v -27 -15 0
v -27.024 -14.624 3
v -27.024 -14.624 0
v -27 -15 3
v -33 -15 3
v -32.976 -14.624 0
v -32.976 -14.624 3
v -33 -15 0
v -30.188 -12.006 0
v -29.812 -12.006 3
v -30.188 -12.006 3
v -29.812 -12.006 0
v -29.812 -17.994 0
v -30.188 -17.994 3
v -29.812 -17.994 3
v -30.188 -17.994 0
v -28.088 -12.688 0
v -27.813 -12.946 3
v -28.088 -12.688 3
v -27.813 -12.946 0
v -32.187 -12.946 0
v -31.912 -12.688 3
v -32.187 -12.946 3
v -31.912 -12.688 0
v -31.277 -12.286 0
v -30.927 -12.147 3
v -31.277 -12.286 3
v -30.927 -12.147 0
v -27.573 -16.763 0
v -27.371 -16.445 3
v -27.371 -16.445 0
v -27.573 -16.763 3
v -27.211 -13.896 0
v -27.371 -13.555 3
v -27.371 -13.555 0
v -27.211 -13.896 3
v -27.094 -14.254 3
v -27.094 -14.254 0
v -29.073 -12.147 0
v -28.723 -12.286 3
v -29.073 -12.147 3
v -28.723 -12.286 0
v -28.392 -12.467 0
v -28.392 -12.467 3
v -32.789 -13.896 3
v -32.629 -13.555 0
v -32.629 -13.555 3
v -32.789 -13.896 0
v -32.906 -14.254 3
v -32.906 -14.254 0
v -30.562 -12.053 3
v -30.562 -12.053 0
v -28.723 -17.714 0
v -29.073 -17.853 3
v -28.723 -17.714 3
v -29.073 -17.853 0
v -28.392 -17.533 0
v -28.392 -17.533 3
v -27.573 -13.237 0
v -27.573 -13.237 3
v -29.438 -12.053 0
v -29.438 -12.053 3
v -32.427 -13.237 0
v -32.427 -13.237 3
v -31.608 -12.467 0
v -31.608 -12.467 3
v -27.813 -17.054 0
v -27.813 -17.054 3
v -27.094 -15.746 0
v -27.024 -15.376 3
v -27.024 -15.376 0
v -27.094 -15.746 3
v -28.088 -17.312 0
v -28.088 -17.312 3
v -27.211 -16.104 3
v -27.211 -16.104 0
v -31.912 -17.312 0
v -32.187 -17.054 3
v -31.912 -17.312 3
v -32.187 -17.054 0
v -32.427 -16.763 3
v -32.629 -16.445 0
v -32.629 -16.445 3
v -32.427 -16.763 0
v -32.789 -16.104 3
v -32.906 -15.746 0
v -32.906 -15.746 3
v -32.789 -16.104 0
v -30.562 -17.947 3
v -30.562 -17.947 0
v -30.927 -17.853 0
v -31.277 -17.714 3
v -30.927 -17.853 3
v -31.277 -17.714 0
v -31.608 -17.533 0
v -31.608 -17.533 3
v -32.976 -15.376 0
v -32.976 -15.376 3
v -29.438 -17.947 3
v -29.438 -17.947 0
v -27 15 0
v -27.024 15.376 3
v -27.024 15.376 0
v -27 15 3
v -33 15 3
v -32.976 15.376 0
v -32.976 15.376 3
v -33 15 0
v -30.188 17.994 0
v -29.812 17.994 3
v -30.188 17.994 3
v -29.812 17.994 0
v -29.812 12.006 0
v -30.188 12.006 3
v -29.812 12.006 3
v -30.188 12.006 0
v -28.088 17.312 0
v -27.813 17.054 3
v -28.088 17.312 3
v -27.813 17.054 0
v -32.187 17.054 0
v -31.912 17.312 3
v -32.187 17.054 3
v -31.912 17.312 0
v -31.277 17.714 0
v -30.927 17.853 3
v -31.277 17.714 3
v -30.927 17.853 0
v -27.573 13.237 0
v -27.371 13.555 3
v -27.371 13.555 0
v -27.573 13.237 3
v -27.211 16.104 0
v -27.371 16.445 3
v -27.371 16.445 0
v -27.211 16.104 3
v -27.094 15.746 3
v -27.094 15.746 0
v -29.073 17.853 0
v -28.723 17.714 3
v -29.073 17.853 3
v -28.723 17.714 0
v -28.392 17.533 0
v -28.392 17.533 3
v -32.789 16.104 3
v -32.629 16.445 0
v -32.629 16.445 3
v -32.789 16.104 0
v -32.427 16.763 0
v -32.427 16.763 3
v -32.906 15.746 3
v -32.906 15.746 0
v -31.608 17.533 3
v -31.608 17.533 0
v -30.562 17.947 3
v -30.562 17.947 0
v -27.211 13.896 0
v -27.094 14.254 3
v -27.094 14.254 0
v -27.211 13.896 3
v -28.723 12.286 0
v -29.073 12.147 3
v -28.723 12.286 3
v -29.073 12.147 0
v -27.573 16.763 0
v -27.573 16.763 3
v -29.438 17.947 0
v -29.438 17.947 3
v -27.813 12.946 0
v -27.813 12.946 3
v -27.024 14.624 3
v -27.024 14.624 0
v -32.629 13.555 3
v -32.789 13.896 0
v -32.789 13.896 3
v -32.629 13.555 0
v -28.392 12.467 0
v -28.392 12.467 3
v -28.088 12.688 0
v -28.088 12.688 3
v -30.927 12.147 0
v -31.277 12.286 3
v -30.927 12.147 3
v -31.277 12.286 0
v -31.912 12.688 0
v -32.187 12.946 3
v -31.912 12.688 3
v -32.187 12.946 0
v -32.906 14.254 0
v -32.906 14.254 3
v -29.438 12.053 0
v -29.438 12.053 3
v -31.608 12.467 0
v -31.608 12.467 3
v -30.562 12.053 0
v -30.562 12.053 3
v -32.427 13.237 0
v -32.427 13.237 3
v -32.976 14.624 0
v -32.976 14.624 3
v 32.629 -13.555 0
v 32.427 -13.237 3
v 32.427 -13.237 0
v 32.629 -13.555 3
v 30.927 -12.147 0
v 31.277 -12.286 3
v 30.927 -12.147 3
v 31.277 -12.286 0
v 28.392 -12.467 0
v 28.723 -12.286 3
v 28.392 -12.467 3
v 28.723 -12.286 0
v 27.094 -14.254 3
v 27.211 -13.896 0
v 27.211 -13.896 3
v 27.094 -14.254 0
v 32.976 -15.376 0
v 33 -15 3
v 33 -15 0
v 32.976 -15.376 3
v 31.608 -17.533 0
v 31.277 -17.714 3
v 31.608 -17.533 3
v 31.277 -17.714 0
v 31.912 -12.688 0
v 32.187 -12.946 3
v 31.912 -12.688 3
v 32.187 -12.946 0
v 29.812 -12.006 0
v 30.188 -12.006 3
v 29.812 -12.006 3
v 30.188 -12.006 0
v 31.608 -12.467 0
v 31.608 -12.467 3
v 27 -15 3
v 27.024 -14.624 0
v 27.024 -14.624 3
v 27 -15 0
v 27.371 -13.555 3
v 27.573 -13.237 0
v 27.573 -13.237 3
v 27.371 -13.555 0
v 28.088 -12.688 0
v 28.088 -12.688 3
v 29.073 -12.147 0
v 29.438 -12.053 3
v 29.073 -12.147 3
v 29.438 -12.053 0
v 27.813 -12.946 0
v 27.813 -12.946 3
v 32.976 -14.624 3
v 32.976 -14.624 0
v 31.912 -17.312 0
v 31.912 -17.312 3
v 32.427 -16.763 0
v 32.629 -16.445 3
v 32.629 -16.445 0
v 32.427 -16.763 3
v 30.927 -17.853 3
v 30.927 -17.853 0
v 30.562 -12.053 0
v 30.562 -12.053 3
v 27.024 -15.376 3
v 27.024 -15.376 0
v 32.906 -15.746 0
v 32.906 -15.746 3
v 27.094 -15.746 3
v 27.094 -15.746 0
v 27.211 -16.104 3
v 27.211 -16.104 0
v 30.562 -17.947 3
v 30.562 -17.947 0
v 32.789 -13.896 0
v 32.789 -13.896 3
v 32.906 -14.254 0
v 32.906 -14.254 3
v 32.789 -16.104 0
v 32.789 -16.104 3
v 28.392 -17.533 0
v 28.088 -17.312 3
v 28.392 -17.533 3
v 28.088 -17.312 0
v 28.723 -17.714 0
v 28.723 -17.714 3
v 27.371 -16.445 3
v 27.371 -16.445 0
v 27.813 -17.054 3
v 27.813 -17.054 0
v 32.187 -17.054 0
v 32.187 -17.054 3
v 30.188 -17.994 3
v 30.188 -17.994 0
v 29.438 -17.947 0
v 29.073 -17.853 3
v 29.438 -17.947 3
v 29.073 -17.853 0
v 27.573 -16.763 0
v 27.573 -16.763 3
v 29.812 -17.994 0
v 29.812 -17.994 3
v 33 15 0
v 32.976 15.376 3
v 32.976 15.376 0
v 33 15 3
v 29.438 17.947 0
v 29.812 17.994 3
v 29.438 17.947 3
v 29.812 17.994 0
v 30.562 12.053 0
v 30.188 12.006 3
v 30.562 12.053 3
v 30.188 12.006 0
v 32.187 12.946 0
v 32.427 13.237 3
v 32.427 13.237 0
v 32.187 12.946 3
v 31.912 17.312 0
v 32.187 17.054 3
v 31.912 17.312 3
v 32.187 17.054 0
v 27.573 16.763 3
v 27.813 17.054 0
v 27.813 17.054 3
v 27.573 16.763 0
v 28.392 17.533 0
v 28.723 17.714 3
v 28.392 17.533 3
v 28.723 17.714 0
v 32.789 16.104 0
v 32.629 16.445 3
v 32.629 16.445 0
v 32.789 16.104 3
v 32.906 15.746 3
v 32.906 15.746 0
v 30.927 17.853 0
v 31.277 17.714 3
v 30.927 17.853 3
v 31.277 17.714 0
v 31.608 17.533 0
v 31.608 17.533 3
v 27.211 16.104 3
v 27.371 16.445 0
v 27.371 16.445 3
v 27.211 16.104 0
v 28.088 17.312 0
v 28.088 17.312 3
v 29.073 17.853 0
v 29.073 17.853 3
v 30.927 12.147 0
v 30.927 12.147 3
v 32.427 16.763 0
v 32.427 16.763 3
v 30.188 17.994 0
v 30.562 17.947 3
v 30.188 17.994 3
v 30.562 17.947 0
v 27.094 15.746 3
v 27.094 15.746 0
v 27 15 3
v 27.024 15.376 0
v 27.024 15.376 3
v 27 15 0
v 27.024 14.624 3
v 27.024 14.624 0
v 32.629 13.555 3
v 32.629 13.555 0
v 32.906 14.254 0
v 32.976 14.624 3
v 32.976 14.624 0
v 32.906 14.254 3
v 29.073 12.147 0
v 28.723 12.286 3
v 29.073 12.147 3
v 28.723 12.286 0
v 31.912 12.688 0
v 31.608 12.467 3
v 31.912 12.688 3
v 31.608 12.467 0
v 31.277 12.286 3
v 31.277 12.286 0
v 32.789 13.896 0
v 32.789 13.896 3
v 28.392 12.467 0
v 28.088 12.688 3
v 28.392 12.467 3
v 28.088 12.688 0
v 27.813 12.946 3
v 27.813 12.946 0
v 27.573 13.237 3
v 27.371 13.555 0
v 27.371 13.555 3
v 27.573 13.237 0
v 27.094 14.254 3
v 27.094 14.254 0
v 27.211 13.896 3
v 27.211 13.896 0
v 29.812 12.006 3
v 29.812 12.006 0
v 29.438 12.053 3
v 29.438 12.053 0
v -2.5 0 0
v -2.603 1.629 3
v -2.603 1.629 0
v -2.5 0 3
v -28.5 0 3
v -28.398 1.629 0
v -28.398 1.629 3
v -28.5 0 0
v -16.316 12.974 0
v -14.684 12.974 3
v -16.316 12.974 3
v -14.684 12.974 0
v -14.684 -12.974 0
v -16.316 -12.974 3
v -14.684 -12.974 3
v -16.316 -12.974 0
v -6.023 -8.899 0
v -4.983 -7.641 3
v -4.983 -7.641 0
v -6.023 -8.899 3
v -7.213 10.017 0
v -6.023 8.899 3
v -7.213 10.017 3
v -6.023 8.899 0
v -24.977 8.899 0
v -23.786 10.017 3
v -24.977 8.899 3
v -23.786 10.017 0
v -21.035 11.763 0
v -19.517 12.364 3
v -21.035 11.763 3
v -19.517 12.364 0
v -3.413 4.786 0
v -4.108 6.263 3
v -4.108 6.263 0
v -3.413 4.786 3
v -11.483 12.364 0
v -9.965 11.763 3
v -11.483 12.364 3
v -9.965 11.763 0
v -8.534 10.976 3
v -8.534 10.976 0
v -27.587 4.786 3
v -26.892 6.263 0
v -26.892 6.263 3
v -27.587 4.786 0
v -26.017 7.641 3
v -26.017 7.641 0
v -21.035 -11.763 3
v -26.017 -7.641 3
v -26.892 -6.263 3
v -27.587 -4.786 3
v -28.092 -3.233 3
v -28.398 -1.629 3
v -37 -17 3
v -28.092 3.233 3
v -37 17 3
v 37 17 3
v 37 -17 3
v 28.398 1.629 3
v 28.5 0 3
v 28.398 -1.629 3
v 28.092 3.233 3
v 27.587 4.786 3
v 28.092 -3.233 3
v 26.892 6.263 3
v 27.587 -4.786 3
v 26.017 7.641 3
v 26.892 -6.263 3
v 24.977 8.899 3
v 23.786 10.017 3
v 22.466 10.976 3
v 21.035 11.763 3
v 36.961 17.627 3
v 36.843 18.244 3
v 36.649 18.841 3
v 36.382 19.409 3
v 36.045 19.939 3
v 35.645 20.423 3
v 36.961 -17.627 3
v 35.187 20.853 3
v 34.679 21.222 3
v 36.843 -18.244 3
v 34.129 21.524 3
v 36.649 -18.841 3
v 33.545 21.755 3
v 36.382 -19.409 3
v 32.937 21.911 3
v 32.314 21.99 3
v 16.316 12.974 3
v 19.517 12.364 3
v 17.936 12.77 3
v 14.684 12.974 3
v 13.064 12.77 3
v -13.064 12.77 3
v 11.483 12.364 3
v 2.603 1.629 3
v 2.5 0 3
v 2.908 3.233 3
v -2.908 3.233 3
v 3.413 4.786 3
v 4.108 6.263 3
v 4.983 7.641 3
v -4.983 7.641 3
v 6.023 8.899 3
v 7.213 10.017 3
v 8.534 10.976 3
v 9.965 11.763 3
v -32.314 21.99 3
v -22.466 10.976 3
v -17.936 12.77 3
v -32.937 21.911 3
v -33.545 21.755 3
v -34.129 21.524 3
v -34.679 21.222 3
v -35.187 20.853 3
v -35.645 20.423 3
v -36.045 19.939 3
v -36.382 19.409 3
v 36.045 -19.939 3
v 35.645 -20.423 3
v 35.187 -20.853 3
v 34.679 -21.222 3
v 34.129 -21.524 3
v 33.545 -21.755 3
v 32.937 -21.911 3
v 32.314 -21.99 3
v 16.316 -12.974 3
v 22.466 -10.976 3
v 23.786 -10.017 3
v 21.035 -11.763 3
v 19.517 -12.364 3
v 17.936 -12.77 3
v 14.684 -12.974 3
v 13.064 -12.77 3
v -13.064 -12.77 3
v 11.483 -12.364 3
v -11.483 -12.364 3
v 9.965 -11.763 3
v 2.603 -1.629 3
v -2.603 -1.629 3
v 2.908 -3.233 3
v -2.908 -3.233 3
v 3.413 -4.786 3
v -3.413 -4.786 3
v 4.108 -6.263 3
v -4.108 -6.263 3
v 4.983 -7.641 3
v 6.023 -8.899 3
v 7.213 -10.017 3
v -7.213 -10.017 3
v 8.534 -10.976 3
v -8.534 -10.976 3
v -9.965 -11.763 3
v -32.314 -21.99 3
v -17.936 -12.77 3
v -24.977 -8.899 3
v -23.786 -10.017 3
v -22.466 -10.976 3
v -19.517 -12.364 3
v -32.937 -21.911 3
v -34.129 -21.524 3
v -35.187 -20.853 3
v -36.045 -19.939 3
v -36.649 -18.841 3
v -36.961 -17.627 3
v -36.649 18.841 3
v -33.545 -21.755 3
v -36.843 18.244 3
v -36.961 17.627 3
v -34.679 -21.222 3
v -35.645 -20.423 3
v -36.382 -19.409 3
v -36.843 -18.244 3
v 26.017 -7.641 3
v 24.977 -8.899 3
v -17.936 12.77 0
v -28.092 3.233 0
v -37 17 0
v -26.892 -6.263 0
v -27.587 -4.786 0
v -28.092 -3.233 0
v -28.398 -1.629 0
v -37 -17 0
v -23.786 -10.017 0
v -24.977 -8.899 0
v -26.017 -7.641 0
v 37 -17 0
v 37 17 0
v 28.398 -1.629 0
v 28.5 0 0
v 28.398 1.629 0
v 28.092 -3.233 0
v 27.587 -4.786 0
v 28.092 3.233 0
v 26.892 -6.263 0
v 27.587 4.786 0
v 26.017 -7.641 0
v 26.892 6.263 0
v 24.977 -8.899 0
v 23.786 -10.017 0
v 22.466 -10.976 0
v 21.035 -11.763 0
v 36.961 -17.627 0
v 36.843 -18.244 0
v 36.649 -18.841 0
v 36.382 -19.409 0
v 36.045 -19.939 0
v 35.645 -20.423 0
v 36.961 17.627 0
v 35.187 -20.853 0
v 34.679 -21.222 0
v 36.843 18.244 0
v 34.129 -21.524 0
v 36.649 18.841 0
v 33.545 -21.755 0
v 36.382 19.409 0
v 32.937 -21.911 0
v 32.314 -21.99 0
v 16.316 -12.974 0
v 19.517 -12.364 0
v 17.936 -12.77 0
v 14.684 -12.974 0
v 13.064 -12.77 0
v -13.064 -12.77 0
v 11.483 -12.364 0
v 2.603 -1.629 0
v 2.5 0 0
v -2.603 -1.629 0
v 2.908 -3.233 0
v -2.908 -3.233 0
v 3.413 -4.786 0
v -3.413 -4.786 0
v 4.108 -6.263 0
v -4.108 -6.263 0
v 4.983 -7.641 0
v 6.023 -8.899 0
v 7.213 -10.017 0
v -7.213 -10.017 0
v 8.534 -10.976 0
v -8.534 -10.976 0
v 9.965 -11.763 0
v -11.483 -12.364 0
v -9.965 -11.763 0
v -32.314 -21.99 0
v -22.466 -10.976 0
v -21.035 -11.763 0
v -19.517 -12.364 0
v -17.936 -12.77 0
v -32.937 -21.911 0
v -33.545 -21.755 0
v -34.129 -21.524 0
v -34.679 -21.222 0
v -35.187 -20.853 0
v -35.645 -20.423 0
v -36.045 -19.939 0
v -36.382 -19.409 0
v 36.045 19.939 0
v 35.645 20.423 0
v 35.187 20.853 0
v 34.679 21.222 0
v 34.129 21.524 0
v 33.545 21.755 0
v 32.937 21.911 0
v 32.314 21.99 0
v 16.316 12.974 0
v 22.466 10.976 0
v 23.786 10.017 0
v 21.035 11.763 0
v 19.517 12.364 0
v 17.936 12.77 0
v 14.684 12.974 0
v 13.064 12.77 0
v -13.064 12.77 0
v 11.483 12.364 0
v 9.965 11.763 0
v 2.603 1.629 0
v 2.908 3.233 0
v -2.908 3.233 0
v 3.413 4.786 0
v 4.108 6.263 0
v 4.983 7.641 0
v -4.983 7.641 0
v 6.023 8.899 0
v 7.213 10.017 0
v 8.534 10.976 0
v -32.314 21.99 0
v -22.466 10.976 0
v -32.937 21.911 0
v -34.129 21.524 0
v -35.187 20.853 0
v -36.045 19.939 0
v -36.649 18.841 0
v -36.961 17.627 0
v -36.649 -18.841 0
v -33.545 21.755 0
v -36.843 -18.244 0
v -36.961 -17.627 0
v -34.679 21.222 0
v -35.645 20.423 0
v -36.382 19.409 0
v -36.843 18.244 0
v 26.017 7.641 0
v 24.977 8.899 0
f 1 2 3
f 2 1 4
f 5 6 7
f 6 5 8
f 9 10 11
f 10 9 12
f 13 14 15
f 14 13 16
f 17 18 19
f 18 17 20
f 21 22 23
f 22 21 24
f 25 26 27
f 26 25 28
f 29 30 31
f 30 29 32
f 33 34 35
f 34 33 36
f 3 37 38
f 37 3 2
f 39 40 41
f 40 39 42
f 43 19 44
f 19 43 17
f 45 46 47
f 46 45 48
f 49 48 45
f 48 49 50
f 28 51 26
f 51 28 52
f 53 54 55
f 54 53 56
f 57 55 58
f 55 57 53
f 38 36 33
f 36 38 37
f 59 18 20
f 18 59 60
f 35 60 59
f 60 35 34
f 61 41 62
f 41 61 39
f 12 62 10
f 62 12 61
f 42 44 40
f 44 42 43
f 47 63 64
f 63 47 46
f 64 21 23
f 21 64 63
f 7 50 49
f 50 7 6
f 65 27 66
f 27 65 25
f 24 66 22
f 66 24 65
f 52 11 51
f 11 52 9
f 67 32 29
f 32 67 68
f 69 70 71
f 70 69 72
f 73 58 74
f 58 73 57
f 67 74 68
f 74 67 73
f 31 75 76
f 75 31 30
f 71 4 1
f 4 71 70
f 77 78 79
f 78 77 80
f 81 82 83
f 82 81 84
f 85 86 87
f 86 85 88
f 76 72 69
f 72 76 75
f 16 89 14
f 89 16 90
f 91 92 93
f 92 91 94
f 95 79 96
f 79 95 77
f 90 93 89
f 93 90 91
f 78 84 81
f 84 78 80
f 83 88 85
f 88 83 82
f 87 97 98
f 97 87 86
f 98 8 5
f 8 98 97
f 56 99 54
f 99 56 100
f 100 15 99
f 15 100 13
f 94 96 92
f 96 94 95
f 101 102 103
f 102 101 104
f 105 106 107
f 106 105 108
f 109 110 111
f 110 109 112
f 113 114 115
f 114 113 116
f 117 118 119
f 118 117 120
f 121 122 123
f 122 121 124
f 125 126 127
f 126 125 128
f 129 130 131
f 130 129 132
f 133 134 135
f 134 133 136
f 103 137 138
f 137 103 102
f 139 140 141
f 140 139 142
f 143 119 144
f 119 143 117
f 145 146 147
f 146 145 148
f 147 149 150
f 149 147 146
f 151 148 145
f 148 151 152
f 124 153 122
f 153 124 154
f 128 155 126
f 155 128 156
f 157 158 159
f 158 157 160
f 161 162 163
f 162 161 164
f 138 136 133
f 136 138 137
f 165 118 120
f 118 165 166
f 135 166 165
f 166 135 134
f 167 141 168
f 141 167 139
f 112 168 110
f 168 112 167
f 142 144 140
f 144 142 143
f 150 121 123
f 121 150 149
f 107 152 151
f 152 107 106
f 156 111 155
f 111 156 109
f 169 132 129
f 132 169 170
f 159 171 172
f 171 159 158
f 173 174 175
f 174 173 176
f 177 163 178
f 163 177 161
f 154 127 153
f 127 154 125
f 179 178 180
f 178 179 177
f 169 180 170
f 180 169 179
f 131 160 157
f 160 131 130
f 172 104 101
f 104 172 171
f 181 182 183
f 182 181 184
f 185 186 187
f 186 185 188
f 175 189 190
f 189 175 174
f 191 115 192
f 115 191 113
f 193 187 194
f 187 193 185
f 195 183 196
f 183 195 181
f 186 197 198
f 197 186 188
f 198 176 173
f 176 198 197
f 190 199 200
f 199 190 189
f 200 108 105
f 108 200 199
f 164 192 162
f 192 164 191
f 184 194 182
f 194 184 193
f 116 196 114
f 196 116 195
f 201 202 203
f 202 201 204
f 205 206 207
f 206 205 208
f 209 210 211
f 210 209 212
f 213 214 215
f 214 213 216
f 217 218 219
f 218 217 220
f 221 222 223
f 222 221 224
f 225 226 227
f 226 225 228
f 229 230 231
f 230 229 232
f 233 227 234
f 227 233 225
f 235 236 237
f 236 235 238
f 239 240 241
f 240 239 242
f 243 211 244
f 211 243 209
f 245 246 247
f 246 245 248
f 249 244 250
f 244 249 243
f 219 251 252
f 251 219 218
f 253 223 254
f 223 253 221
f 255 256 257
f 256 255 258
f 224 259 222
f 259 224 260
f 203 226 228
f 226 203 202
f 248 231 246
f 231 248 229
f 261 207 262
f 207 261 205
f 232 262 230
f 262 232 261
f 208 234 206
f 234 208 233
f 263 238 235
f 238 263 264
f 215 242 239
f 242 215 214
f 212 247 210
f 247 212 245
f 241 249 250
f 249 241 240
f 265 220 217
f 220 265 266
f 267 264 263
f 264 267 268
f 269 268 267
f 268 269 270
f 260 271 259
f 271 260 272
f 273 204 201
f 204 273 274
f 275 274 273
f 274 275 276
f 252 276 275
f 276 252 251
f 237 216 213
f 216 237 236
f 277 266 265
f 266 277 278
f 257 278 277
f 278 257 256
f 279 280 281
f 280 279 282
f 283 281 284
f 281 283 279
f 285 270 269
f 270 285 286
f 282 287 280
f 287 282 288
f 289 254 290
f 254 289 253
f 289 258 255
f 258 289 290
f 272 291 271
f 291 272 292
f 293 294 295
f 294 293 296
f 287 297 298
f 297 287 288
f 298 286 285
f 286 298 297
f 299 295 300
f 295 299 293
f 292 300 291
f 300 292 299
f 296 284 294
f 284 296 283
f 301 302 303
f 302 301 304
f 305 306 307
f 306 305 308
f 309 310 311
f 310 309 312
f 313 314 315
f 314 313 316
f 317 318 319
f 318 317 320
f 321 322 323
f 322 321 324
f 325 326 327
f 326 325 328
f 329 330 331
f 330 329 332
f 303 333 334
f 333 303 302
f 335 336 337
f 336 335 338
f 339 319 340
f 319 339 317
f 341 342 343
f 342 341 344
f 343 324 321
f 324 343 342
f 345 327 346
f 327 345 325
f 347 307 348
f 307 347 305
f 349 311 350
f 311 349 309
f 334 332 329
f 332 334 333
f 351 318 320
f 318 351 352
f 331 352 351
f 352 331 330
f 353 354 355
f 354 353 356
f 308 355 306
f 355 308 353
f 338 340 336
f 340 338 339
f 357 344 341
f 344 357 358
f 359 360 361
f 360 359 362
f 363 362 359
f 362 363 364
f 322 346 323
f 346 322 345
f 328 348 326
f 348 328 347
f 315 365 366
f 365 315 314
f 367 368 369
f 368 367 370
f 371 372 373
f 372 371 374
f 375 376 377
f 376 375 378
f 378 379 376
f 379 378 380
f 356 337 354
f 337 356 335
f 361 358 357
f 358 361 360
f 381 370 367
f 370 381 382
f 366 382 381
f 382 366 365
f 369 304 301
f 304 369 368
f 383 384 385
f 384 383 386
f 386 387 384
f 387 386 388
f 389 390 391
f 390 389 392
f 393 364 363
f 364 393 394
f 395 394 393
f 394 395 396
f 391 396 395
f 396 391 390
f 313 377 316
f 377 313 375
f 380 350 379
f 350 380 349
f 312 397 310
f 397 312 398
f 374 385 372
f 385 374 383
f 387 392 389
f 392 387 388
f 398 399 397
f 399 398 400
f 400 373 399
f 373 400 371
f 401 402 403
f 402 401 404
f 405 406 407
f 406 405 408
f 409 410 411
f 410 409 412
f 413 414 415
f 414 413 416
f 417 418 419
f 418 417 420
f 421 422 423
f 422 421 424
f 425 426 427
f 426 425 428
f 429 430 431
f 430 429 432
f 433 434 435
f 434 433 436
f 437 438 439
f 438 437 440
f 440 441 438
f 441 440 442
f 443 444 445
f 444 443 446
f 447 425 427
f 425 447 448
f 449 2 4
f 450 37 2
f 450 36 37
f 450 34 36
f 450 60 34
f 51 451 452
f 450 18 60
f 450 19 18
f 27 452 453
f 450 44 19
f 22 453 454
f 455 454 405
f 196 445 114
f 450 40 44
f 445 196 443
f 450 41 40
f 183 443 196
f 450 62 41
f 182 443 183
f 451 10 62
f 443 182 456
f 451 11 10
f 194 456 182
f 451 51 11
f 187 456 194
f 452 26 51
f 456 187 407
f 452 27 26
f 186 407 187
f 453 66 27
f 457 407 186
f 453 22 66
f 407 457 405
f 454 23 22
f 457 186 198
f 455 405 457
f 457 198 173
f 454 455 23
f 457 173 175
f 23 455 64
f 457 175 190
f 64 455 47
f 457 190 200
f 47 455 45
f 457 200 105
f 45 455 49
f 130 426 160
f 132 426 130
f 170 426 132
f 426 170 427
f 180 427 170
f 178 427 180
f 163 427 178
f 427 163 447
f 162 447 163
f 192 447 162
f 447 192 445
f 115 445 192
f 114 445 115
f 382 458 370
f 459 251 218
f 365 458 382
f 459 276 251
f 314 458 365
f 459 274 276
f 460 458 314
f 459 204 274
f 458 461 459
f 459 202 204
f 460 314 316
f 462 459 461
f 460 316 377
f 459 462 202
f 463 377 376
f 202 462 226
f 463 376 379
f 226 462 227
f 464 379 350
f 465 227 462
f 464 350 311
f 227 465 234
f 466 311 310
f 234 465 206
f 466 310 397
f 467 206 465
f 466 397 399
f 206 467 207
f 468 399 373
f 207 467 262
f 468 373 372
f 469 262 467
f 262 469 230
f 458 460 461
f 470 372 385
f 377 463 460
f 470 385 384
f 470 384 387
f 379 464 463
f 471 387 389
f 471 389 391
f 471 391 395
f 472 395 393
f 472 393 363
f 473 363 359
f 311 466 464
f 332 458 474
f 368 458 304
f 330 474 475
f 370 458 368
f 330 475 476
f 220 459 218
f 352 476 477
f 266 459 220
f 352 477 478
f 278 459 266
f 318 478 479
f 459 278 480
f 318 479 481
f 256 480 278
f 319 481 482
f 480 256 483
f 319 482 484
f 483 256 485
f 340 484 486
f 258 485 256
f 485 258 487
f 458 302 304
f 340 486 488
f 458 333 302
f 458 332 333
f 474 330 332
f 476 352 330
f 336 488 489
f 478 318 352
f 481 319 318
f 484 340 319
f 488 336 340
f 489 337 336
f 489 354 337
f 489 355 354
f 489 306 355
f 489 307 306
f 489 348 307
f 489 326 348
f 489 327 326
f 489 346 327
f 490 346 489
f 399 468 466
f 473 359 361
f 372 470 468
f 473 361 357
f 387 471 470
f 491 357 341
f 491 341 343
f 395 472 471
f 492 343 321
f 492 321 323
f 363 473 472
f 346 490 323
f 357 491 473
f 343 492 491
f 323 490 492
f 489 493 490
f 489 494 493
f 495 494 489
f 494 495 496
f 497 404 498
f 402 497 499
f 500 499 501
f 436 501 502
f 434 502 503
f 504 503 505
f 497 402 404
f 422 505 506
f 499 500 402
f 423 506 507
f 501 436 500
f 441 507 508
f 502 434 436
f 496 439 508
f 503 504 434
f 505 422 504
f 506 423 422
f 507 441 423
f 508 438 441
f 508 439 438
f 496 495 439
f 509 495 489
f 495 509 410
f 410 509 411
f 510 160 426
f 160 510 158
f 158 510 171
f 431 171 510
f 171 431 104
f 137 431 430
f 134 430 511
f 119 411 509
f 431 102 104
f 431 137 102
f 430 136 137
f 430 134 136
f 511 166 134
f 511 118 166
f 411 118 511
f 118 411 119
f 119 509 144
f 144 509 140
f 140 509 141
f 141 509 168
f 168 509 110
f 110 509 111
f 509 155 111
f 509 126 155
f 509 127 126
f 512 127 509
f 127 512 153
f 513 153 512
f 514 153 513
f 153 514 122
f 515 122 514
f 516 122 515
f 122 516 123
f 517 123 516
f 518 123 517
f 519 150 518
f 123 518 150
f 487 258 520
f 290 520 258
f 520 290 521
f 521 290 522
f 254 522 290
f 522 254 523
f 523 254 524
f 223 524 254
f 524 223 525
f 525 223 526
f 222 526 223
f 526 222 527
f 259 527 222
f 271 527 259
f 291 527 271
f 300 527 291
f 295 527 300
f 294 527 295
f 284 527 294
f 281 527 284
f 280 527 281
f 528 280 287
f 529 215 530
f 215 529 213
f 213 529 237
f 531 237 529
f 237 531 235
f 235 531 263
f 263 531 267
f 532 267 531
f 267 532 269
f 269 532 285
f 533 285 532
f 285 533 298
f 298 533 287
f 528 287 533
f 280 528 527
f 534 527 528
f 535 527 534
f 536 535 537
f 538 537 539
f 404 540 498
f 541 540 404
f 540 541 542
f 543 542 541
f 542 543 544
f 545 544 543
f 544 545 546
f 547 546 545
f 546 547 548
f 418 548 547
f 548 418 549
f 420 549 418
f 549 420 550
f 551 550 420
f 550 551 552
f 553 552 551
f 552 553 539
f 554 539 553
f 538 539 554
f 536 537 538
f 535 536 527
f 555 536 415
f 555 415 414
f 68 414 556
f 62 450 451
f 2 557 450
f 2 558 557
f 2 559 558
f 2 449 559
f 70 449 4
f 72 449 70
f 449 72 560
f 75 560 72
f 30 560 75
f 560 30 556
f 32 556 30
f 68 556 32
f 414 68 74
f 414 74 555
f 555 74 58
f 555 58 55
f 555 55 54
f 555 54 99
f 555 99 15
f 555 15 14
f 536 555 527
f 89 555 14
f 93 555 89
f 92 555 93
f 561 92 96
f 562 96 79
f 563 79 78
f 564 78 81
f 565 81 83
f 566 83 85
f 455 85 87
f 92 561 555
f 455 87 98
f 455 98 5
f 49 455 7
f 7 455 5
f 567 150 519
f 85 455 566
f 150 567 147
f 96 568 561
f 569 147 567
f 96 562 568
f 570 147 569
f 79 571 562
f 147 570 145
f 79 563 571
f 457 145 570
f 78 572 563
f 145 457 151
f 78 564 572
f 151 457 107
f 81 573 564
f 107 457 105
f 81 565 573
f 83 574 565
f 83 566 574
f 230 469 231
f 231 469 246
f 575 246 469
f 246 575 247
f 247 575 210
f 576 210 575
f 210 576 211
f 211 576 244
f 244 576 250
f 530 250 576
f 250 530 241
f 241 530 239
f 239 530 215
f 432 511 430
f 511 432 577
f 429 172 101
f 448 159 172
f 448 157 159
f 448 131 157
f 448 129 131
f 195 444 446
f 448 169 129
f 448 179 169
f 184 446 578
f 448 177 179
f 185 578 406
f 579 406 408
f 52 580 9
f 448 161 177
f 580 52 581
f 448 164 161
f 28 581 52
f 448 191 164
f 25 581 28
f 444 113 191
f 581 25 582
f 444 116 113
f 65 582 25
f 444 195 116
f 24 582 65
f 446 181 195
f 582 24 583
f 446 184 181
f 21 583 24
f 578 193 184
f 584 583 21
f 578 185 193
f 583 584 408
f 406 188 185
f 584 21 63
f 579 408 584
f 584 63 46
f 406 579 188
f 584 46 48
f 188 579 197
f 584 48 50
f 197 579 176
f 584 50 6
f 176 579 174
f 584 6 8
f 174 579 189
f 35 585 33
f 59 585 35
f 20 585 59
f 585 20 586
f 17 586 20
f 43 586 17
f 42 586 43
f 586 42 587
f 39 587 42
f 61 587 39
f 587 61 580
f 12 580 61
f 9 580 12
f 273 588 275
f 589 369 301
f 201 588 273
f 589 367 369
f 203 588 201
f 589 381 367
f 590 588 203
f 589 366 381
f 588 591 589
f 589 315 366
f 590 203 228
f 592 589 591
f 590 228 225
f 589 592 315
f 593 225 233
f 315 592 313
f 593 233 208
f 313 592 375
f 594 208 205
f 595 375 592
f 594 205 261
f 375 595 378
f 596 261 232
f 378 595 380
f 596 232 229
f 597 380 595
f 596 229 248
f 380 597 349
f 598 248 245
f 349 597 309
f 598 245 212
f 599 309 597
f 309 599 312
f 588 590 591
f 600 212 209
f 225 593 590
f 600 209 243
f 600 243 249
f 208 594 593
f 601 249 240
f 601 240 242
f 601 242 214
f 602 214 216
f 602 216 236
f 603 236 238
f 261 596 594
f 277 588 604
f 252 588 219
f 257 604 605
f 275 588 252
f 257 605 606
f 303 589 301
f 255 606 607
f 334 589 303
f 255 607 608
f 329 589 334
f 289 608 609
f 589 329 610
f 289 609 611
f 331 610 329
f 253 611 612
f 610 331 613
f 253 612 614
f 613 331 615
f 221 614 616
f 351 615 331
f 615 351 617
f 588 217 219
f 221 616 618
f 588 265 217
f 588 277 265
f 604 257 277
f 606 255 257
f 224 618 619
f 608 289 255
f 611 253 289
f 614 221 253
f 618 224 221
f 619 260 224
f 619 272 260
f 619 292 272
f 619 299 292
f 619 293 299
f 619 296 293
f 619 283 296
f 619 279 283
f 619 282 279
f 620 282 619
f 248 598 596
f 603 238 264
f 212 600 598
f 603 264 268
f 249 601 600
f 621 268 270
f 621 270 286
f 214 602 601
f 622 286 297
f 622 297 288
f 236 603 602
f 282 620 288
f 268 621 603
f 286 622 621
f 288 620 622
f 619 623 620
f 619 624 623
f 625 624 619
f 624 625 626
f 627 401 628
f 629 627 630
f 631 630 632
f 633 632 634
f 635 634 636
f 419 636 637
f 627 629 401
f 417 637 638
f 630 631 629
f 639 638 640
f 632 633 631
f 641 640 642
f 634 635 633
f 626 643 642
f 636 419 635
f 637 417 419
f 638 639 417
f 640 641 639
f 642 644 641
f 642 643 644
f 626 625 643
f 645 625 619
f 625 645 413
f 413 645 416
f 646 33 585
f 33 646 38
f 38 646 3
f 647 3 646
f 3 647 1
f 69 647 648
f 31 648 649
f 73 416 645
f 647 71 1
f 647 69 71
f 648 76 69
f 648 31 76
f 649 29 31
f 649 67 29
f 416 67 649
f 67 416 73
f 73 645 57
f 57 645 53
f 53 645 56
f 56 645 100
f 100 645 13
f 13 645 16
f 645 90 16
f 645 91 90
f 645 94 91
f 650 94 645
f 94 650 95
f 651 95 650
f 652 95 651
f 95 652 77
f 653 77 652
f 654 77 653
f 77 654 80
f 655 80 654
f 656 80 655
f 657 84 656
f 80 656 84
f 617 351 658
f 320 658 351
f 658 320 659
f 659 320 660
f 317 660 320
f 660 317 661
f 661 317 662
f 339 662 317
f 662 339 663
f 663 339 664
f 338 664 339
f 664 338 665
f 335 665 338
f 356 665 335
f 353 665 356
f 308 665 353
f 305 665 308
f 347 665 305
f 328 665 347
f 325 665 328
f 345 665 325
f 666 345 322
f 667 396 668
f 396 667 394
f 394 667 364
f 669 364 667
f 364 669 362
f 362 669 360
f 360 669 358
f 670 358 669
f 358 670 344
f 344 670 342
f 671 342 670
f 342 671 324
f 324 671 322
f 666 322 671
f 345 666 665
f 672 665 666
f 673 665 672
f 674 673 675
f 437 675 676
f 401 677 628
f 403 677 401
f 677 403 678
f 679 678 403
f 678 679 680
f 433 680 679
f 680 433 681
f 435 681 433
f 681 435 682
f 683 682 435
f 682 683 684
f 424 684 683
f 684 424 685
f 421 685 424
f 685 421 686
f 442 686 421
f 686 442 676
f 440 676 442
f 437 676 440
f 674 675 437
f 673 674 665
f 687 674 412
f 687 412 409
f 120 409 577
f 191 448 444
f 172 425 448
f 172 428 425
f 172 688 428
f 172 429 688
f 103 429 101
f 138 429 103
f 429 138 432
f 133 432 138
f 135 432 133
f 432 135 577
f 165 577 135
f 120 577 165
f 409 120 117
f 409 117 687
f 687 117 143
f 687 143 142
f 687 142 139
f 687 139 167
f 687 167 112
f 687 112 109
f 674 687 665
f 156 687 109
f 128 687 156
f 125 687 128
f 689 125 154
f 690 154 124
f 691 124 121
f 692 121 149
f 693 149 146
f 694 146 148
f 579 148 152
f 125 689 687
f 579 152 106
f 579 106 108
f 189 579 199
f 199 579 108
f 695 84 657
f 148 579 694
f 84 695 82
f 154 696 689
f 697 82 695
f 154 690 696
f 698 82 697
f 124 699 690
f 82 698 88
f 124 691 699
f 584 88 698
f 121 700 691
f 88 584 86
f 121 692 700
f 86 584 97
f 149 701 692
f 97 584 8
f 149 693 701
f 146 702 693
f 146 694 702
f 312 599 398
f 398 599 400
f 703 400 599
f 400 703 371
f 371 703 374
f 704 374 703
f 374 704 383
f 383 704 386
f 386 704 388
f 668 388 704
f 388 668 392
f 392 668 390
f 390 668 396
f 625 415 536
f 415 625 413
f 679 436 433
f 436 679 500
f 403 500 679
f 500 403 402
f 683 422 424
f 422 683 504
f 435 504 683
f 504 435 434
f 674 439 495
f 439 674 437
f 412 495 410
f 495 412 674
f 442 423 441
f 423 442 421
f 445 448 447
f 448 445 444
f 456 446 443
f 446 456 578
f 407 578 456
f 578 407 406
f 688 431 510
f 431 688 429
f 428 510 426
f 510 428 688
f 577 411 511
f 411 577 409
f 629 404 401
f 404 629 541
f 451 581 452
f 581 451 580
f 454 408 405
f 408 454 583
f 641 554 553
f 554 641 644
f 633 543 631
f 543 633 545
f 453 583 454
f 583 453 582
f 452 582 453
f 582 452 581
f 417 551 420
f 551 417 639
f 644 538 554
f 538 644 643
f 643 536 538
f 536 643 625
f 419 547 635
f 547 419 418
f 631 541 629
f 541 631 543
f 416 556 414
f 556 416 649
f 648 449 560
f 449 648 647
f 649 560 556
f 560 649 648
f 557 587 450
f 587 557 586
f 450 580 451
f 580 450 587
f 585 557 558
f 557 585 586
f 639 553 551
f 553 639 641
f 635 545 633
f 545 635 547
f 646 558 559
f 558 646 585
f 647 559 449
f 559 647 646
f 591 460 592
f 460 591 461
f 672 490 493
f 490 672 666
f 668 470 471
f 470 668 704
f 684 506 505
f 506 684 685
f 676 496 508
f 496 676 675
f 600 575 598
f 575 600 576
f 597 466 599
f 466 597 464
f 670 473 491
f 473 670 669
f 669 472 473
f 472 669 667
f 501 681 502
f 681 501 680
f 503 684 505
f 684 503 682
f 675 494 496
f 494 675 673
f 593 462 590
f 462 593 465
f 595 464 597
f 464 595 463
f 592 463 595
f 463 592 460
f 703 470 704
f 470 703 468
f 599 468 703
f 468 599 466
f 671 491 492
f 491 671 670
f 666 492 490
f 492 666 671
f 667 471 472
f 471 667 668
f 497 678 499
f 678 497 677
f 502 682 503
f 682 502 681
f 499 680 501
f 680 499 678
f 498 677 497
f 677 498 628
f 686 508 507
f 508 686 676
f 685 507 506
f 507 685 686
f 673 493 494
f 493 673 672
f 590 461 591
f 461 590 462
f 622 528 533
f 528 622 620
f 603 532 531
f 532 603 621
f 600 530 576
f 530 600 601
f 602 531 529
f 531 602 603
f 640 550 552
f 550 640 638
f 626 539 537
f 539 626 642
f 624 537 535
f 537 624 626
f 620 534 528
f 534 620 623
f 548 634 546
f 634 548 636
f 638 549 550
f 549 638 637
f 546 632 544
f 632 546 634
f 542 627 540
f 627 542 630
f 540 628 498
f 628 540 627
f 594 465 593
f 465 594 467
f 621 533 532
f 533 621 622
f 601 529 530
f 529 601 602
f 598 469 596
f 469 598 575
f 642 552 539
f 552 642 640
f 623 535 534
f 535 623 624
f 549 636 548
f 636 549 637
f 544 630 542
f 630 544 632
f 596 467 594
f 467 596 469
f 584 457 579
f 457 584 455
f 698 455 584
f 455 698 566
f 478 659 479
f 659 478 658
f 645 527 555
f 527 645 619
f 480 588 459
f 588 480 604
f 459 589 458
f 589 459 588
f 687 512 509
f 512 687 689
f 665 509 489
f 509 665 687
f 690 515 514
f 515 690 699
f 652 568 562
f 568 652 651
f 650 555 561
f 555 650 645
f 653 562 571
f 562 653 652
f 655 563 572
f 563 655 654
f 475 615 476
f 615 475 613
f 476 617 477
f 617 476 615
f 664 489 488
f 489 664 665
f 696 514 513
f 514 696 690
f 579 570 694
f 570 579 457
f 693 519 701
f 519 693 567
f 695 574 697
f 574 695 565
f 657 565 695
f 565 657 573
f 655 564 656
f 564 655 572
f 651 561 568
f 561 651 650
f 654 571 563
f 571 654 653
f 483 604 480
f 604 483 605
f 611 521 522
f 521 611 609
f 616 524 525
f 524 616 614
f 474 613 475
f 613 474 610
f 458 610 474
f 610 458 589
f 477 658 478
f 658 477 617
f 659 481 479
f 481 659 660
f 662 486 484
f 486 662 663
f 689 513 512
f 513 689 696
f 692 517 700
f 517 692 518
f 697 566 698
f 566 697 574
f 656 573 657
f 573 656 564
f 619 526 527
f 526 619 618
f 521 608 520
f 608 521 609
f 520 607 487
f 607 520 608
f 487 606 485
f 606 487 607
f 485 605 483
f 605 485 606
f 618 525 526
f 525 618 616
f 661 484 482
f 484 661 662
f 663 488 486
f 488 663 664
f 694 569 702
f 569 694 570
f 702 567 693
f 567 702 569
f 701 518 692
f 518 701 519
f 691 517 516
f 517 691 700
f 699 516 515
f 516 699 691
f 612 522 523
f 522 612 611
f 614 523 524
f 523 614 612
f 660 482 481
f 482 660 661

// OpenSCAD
$fn = 50;


difference() {
	union() {
		hull() {
			translate(v = [-32.0000000000, 17.0000000000, 0]) {
				cylinder(h = 3, r = 5);
			}
			translate(v = [32.0000000000, 17.0000000000, 0]) {
				cylinder(h = 3, r = 5);
			}
			translate(v = [-32.0000000000, -17.0000000000, 0]) {
				cylinder(h = 3, r = 5);
			}
			translate(v = [32.0000000000, -17.0000000000, 0]) {
				cylinder(h = 3, r = 5);
			}
		}
	}
	union() {
		#translate(v = [-30.0000000000, -15.0000000000, -100.0000000000]) {
			cylinder(h = 200, r = 3.0000000000);
		}
		#translate(v = [-30.0000000000, 15.0000000000, -100.0000000000]) {
			cylinder(h = 200, r = 3.0000000000);
		}
		#translate(v = [30.0000000000, -15.0000000000, -100.0000000000]) {
			cylinder(h = 200, r = 3.0000000000);
		}
		#translate(v = [30.0000000000, 15.0000000000, -100.0000000000]) {
			cylinder(h = 200, r = 3.0000000000);
		}
		#translate(v = [-15.5000000000, 0, 0]) {
			cylinder(h = 3, r = 13.0000000000);
		}
		#translate(v = [15.5000000000, 0, 0]) {
			cylinder(h = 3, r = 13.0000000000);
		}
	}
}
